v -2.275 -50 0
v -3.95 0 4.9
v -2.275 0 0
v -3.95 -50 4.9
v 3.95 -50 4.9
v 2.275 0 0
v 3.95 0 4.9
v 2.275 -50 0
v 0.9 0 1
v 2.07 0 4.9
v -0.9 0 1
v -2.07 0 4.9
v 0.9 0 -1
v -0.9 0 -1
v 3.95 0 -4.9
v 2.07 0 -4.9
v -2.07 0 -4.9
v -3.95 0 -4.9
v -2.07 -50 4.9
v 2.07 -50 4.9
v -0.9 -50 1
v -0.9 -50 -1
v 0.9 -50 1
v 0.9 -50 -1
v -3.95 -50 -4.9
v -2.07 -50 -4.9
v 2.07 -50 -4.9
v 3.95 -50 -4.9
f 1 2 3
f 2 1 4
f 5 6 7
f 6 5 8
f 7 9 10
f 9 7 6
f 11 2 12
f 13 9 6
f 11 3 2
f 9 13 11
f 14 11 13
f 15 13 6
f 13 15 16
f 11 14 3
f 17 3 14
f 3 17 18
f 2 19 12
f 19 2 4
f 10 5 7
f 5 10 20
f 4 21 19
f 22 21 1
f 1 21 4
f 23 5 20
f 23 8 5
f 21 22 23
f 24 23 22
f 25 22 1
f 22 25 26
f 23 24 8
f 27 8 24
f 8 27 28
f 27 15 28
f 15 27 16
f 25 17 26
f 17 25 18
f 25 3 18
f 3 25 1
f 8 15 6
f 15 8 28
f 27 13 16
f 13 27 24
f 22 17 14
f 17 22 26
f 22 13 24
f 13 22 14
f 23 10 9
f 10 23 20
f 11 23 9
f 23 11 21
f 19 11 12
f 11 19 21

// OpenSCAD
// file: long_bow_tie.scad
tilt_level = 1.1;

include <include.scad>;
include <globals.scad>;

obj_leg = 12;

function scale_x() = 1;
function scale_z() = (male_dove_depth-0.2)/male_dove_depth;

length = 50;

// shifts the upper dove to right
_offset = 0;


//long_bow_tie();
//long_bow_tie(25);

//long_bow_tie_half(length);
//long_bow_tie_half(30);
//long_bow_tie_half_split(length);

long_bow_tie_split(length);
//long_bow_tie_split(30);



module bow_tie_master(length){
    dovetail_3d(
        male_dove_max_width,
        male_dove_min_width,
        male_dove_depth,
        length
    );
}

module long_bow_tie_unscaled(length) {

    module endcyl() {
        translate([0, 0, -3])
        cylinder(d=24, h=6, $fn=60);
    }

    module endtub() {
        rotate([0, 90, 0])
        translate([0, 0, -15/2])
        difference() {
            cylinder(d=20, h=15, $fn=60);
            cylinder(d=12, h=16, $fn=60);

            translate([-20, 0, -0.1])
            cube([40, 20, 16]);
        }
    }

    module _half() {

        translate([0, length/2, 0])
        difference() {
            intersection(){
                rotate([90, 0, 0])
                bow_tie_master(length);

                rotate([90, 0, 0])
                cylinder(r=5.8, h=length * 2);
            }
            translate([13, 5, 0])
            rotate([90, 0, 25])
            endcyl();

            translate([-13, 5, 0])
            rotate([90, 0, -25])
            endcyl();

            translate([13, -length - 5, 0])
            rotate([90, 0, -25])
            endcyl();

            translate([-13, -length - 5, 0])
            rotate([90, 0, 25])
            endcyl();

            translate([0, -length + 4.5, 0])
            endtub();

            translate([0, -4.5, 0])
            rotate([180, 0, 0])
            endtub();
        }
    }

    union() {
        translate([_offset, 0, 0])
        _half();

        mirror([0, 0, 1])
        _half();
    }
}

module long_bow_tie(
    length=length, scale_x=scale_x(), 
    scale_z=scale_z(), middle=false) {

    scale([scale_x, 1, scale_z]) {
        if(middle) {
            long_bow_tie_unscaled(length);
        } else {
            translate([0, 0, male_dove_depth])
            long_bow_tie_unscaled(length);
        }
    }
}

module split(length) {
    translate([0, 0, -length/2 - 1])
    linear_extrude(height=length + 2)
    polygon(points=[
        [0, -1.5], [0.9, -1.5], [2, -5],
        [-2, -5], [-0.9, -1.5]
    ]);
}

module long_bow_tie_split(
    length=length, scale_x=scale_x(),
    scale_z=scale_z(), middle=false
) {

    module _do_split() {
        rotate([90, 0, 0])
        difference() {
            rotate([-90, 0, 0])
            long_bow_tie(
                length, scale_x=scale_x,
                scale_z=scale_z, middle=true);

            split(length);

            translate([_offset, 0, 0])
            rotate([0, 0, 180])
            split(length);
        }
    }
        
    if (!middle) {
        translate([0, 0, scale_z * male_dove_depth])
        _do_split();
    } else {
        _do_split();
    }
}

module long_bow_tie_half(
    length=length, scale_x=scale_x(),
    scale_z=scale_z(), middle=true) {

    rotate([0, -90, 0])
    intersection() {
        long_bow_tie(length, middle=middle);

        translate([0, -length/2, -24/2])
        chamfered_cube(
            13, length, 24, 1
        );
    }
}

module long_bow_tie_half_split(
    length=length, scale_x=scale_x(),
    scale_z=scale_z()) {

    union() {
        intersection() {
            long_bow_tie_split(length,
                scale_x=scale_x,
                scale_z=scale_z,
                middle=true);
            translate([0, 0, -6/2])
            cube([10, length, 6], center=true);
        }
        cube([scale_x*male_dove_min_width, length,
              1.6], center=true);

        translate([((scale_x*male_dove_min_width)/2)/2, 0, 4/2])
        cube([(scale_x*male_dove_min_width)/2, length,
              4], center=true);

        translate([0, 0, 4])
        intersection() {
            long_bow_tie(
                length,scale_x=scale_x, scale_z=scale_z,
                middle=true);

            translate([5/2, 0, 5/2])
            cube([5, length, 5], center=true);
        }
    }
}
// file: globals.scad
/*
Most things in this file is represented as one millimeter, so keep that in mind while changing things.
Some of the setting are not mm but at variables that you can set, such as 2*x=2x and you are setting what x is.
I will try to specify when things are variables and not exact measurements.
*/

// printer slop
slop = 0.15;

obj_leg = 30;
leg_length = 5.5;
small_number = 0.001;
metal_core_rode_global = 5;


///////////////// number of holes /////////////////////
z_hole_number = 8;
other_holes = 8;

///////////////// Pins /////////////////////

//pins that poke out
ball_size = 10;
pin_height = 20;
pin_diameter = 6;


//holes
hole_ball_size = ball_size;
hole_pin_height = pin_height;
hole_pin_diameter = pin_diameter;

///////////////// Z THINGS /////////////////////

berring_slot_width = 7.5;
berring_slot_depth = 6.5;
metal_core_rode = 5;

///////////////// X THINGS /////////////////////

//male dove tails
male_dove_max_width=8;
male_dove_min_width=5;
male_dove_depth=5;
male_dove_height=obj_leg/2;

function scaled_male_dove_max_width() = male_dove_max_width - slop;
function scaled_male_dove_min_width() = male_dove_min_width - slop;
function scaled_male_dove_depth() = male_dove_depth - slop;

//female dove tails, this is found on the y mounts
girl_max_width=11;
girl_min_width=5;
girl_depth=5;
girl_height=obj_leg;


///////////////// Y THINGS /////////////////////
/*
The Y is so normal that all of those global variables at the top should change all of the setting in it, this section is set her incase there are variables set in the future development of this project.
*/

// stepper
motor_side_length = 43.2;
motor_bolt_hole_distance = 31;
motor_center_hole = 23;
motor_shaft_dia = 5;
motor_shaft_hole_dia = 5+2*slop;

// bolts etc.
bolt_hole_dia = 3+2*slop;
bolt_head_hole_dia = 5.8;

m4_bolt_hole_dia = 4+2*slop;
m4_bolt_head_hole_dia = 6.8+2*slop;


m3_nut_side = 5.65;
m3_nut_height = 2.3;
m4_nut_side = 6.85;
m4_nut_height = 3.1;

// threaded rod
lifter_rod_diam = 9.86;
hole_threaded_rod = lifter_rod_diam+2*slop;

// for the extensions
metal_rod_size = 9;
// main file
include <include.scad>;
include <globals.scad>;

use <long_bow_tie.scad>;

length = 50;
max_width=7.9;
min_width=4.55;
height=4.9;
depth=5;


module split() {
    linear_extrude(height=length) polygon(points=[[0,-1], [0.9,-1], [2.1,-5], [-2.1,-5], [-0.9,-1]]);
}

rotate([90,0,0]) difference() {
    union() {
        dovetail_3d(max_width, min_width, height, length);
        mirror([0,1,0]) dovetail_3d(max_width, min_width, height, length);
    }
    split();
    rotate([0,0,180]) split();
}
